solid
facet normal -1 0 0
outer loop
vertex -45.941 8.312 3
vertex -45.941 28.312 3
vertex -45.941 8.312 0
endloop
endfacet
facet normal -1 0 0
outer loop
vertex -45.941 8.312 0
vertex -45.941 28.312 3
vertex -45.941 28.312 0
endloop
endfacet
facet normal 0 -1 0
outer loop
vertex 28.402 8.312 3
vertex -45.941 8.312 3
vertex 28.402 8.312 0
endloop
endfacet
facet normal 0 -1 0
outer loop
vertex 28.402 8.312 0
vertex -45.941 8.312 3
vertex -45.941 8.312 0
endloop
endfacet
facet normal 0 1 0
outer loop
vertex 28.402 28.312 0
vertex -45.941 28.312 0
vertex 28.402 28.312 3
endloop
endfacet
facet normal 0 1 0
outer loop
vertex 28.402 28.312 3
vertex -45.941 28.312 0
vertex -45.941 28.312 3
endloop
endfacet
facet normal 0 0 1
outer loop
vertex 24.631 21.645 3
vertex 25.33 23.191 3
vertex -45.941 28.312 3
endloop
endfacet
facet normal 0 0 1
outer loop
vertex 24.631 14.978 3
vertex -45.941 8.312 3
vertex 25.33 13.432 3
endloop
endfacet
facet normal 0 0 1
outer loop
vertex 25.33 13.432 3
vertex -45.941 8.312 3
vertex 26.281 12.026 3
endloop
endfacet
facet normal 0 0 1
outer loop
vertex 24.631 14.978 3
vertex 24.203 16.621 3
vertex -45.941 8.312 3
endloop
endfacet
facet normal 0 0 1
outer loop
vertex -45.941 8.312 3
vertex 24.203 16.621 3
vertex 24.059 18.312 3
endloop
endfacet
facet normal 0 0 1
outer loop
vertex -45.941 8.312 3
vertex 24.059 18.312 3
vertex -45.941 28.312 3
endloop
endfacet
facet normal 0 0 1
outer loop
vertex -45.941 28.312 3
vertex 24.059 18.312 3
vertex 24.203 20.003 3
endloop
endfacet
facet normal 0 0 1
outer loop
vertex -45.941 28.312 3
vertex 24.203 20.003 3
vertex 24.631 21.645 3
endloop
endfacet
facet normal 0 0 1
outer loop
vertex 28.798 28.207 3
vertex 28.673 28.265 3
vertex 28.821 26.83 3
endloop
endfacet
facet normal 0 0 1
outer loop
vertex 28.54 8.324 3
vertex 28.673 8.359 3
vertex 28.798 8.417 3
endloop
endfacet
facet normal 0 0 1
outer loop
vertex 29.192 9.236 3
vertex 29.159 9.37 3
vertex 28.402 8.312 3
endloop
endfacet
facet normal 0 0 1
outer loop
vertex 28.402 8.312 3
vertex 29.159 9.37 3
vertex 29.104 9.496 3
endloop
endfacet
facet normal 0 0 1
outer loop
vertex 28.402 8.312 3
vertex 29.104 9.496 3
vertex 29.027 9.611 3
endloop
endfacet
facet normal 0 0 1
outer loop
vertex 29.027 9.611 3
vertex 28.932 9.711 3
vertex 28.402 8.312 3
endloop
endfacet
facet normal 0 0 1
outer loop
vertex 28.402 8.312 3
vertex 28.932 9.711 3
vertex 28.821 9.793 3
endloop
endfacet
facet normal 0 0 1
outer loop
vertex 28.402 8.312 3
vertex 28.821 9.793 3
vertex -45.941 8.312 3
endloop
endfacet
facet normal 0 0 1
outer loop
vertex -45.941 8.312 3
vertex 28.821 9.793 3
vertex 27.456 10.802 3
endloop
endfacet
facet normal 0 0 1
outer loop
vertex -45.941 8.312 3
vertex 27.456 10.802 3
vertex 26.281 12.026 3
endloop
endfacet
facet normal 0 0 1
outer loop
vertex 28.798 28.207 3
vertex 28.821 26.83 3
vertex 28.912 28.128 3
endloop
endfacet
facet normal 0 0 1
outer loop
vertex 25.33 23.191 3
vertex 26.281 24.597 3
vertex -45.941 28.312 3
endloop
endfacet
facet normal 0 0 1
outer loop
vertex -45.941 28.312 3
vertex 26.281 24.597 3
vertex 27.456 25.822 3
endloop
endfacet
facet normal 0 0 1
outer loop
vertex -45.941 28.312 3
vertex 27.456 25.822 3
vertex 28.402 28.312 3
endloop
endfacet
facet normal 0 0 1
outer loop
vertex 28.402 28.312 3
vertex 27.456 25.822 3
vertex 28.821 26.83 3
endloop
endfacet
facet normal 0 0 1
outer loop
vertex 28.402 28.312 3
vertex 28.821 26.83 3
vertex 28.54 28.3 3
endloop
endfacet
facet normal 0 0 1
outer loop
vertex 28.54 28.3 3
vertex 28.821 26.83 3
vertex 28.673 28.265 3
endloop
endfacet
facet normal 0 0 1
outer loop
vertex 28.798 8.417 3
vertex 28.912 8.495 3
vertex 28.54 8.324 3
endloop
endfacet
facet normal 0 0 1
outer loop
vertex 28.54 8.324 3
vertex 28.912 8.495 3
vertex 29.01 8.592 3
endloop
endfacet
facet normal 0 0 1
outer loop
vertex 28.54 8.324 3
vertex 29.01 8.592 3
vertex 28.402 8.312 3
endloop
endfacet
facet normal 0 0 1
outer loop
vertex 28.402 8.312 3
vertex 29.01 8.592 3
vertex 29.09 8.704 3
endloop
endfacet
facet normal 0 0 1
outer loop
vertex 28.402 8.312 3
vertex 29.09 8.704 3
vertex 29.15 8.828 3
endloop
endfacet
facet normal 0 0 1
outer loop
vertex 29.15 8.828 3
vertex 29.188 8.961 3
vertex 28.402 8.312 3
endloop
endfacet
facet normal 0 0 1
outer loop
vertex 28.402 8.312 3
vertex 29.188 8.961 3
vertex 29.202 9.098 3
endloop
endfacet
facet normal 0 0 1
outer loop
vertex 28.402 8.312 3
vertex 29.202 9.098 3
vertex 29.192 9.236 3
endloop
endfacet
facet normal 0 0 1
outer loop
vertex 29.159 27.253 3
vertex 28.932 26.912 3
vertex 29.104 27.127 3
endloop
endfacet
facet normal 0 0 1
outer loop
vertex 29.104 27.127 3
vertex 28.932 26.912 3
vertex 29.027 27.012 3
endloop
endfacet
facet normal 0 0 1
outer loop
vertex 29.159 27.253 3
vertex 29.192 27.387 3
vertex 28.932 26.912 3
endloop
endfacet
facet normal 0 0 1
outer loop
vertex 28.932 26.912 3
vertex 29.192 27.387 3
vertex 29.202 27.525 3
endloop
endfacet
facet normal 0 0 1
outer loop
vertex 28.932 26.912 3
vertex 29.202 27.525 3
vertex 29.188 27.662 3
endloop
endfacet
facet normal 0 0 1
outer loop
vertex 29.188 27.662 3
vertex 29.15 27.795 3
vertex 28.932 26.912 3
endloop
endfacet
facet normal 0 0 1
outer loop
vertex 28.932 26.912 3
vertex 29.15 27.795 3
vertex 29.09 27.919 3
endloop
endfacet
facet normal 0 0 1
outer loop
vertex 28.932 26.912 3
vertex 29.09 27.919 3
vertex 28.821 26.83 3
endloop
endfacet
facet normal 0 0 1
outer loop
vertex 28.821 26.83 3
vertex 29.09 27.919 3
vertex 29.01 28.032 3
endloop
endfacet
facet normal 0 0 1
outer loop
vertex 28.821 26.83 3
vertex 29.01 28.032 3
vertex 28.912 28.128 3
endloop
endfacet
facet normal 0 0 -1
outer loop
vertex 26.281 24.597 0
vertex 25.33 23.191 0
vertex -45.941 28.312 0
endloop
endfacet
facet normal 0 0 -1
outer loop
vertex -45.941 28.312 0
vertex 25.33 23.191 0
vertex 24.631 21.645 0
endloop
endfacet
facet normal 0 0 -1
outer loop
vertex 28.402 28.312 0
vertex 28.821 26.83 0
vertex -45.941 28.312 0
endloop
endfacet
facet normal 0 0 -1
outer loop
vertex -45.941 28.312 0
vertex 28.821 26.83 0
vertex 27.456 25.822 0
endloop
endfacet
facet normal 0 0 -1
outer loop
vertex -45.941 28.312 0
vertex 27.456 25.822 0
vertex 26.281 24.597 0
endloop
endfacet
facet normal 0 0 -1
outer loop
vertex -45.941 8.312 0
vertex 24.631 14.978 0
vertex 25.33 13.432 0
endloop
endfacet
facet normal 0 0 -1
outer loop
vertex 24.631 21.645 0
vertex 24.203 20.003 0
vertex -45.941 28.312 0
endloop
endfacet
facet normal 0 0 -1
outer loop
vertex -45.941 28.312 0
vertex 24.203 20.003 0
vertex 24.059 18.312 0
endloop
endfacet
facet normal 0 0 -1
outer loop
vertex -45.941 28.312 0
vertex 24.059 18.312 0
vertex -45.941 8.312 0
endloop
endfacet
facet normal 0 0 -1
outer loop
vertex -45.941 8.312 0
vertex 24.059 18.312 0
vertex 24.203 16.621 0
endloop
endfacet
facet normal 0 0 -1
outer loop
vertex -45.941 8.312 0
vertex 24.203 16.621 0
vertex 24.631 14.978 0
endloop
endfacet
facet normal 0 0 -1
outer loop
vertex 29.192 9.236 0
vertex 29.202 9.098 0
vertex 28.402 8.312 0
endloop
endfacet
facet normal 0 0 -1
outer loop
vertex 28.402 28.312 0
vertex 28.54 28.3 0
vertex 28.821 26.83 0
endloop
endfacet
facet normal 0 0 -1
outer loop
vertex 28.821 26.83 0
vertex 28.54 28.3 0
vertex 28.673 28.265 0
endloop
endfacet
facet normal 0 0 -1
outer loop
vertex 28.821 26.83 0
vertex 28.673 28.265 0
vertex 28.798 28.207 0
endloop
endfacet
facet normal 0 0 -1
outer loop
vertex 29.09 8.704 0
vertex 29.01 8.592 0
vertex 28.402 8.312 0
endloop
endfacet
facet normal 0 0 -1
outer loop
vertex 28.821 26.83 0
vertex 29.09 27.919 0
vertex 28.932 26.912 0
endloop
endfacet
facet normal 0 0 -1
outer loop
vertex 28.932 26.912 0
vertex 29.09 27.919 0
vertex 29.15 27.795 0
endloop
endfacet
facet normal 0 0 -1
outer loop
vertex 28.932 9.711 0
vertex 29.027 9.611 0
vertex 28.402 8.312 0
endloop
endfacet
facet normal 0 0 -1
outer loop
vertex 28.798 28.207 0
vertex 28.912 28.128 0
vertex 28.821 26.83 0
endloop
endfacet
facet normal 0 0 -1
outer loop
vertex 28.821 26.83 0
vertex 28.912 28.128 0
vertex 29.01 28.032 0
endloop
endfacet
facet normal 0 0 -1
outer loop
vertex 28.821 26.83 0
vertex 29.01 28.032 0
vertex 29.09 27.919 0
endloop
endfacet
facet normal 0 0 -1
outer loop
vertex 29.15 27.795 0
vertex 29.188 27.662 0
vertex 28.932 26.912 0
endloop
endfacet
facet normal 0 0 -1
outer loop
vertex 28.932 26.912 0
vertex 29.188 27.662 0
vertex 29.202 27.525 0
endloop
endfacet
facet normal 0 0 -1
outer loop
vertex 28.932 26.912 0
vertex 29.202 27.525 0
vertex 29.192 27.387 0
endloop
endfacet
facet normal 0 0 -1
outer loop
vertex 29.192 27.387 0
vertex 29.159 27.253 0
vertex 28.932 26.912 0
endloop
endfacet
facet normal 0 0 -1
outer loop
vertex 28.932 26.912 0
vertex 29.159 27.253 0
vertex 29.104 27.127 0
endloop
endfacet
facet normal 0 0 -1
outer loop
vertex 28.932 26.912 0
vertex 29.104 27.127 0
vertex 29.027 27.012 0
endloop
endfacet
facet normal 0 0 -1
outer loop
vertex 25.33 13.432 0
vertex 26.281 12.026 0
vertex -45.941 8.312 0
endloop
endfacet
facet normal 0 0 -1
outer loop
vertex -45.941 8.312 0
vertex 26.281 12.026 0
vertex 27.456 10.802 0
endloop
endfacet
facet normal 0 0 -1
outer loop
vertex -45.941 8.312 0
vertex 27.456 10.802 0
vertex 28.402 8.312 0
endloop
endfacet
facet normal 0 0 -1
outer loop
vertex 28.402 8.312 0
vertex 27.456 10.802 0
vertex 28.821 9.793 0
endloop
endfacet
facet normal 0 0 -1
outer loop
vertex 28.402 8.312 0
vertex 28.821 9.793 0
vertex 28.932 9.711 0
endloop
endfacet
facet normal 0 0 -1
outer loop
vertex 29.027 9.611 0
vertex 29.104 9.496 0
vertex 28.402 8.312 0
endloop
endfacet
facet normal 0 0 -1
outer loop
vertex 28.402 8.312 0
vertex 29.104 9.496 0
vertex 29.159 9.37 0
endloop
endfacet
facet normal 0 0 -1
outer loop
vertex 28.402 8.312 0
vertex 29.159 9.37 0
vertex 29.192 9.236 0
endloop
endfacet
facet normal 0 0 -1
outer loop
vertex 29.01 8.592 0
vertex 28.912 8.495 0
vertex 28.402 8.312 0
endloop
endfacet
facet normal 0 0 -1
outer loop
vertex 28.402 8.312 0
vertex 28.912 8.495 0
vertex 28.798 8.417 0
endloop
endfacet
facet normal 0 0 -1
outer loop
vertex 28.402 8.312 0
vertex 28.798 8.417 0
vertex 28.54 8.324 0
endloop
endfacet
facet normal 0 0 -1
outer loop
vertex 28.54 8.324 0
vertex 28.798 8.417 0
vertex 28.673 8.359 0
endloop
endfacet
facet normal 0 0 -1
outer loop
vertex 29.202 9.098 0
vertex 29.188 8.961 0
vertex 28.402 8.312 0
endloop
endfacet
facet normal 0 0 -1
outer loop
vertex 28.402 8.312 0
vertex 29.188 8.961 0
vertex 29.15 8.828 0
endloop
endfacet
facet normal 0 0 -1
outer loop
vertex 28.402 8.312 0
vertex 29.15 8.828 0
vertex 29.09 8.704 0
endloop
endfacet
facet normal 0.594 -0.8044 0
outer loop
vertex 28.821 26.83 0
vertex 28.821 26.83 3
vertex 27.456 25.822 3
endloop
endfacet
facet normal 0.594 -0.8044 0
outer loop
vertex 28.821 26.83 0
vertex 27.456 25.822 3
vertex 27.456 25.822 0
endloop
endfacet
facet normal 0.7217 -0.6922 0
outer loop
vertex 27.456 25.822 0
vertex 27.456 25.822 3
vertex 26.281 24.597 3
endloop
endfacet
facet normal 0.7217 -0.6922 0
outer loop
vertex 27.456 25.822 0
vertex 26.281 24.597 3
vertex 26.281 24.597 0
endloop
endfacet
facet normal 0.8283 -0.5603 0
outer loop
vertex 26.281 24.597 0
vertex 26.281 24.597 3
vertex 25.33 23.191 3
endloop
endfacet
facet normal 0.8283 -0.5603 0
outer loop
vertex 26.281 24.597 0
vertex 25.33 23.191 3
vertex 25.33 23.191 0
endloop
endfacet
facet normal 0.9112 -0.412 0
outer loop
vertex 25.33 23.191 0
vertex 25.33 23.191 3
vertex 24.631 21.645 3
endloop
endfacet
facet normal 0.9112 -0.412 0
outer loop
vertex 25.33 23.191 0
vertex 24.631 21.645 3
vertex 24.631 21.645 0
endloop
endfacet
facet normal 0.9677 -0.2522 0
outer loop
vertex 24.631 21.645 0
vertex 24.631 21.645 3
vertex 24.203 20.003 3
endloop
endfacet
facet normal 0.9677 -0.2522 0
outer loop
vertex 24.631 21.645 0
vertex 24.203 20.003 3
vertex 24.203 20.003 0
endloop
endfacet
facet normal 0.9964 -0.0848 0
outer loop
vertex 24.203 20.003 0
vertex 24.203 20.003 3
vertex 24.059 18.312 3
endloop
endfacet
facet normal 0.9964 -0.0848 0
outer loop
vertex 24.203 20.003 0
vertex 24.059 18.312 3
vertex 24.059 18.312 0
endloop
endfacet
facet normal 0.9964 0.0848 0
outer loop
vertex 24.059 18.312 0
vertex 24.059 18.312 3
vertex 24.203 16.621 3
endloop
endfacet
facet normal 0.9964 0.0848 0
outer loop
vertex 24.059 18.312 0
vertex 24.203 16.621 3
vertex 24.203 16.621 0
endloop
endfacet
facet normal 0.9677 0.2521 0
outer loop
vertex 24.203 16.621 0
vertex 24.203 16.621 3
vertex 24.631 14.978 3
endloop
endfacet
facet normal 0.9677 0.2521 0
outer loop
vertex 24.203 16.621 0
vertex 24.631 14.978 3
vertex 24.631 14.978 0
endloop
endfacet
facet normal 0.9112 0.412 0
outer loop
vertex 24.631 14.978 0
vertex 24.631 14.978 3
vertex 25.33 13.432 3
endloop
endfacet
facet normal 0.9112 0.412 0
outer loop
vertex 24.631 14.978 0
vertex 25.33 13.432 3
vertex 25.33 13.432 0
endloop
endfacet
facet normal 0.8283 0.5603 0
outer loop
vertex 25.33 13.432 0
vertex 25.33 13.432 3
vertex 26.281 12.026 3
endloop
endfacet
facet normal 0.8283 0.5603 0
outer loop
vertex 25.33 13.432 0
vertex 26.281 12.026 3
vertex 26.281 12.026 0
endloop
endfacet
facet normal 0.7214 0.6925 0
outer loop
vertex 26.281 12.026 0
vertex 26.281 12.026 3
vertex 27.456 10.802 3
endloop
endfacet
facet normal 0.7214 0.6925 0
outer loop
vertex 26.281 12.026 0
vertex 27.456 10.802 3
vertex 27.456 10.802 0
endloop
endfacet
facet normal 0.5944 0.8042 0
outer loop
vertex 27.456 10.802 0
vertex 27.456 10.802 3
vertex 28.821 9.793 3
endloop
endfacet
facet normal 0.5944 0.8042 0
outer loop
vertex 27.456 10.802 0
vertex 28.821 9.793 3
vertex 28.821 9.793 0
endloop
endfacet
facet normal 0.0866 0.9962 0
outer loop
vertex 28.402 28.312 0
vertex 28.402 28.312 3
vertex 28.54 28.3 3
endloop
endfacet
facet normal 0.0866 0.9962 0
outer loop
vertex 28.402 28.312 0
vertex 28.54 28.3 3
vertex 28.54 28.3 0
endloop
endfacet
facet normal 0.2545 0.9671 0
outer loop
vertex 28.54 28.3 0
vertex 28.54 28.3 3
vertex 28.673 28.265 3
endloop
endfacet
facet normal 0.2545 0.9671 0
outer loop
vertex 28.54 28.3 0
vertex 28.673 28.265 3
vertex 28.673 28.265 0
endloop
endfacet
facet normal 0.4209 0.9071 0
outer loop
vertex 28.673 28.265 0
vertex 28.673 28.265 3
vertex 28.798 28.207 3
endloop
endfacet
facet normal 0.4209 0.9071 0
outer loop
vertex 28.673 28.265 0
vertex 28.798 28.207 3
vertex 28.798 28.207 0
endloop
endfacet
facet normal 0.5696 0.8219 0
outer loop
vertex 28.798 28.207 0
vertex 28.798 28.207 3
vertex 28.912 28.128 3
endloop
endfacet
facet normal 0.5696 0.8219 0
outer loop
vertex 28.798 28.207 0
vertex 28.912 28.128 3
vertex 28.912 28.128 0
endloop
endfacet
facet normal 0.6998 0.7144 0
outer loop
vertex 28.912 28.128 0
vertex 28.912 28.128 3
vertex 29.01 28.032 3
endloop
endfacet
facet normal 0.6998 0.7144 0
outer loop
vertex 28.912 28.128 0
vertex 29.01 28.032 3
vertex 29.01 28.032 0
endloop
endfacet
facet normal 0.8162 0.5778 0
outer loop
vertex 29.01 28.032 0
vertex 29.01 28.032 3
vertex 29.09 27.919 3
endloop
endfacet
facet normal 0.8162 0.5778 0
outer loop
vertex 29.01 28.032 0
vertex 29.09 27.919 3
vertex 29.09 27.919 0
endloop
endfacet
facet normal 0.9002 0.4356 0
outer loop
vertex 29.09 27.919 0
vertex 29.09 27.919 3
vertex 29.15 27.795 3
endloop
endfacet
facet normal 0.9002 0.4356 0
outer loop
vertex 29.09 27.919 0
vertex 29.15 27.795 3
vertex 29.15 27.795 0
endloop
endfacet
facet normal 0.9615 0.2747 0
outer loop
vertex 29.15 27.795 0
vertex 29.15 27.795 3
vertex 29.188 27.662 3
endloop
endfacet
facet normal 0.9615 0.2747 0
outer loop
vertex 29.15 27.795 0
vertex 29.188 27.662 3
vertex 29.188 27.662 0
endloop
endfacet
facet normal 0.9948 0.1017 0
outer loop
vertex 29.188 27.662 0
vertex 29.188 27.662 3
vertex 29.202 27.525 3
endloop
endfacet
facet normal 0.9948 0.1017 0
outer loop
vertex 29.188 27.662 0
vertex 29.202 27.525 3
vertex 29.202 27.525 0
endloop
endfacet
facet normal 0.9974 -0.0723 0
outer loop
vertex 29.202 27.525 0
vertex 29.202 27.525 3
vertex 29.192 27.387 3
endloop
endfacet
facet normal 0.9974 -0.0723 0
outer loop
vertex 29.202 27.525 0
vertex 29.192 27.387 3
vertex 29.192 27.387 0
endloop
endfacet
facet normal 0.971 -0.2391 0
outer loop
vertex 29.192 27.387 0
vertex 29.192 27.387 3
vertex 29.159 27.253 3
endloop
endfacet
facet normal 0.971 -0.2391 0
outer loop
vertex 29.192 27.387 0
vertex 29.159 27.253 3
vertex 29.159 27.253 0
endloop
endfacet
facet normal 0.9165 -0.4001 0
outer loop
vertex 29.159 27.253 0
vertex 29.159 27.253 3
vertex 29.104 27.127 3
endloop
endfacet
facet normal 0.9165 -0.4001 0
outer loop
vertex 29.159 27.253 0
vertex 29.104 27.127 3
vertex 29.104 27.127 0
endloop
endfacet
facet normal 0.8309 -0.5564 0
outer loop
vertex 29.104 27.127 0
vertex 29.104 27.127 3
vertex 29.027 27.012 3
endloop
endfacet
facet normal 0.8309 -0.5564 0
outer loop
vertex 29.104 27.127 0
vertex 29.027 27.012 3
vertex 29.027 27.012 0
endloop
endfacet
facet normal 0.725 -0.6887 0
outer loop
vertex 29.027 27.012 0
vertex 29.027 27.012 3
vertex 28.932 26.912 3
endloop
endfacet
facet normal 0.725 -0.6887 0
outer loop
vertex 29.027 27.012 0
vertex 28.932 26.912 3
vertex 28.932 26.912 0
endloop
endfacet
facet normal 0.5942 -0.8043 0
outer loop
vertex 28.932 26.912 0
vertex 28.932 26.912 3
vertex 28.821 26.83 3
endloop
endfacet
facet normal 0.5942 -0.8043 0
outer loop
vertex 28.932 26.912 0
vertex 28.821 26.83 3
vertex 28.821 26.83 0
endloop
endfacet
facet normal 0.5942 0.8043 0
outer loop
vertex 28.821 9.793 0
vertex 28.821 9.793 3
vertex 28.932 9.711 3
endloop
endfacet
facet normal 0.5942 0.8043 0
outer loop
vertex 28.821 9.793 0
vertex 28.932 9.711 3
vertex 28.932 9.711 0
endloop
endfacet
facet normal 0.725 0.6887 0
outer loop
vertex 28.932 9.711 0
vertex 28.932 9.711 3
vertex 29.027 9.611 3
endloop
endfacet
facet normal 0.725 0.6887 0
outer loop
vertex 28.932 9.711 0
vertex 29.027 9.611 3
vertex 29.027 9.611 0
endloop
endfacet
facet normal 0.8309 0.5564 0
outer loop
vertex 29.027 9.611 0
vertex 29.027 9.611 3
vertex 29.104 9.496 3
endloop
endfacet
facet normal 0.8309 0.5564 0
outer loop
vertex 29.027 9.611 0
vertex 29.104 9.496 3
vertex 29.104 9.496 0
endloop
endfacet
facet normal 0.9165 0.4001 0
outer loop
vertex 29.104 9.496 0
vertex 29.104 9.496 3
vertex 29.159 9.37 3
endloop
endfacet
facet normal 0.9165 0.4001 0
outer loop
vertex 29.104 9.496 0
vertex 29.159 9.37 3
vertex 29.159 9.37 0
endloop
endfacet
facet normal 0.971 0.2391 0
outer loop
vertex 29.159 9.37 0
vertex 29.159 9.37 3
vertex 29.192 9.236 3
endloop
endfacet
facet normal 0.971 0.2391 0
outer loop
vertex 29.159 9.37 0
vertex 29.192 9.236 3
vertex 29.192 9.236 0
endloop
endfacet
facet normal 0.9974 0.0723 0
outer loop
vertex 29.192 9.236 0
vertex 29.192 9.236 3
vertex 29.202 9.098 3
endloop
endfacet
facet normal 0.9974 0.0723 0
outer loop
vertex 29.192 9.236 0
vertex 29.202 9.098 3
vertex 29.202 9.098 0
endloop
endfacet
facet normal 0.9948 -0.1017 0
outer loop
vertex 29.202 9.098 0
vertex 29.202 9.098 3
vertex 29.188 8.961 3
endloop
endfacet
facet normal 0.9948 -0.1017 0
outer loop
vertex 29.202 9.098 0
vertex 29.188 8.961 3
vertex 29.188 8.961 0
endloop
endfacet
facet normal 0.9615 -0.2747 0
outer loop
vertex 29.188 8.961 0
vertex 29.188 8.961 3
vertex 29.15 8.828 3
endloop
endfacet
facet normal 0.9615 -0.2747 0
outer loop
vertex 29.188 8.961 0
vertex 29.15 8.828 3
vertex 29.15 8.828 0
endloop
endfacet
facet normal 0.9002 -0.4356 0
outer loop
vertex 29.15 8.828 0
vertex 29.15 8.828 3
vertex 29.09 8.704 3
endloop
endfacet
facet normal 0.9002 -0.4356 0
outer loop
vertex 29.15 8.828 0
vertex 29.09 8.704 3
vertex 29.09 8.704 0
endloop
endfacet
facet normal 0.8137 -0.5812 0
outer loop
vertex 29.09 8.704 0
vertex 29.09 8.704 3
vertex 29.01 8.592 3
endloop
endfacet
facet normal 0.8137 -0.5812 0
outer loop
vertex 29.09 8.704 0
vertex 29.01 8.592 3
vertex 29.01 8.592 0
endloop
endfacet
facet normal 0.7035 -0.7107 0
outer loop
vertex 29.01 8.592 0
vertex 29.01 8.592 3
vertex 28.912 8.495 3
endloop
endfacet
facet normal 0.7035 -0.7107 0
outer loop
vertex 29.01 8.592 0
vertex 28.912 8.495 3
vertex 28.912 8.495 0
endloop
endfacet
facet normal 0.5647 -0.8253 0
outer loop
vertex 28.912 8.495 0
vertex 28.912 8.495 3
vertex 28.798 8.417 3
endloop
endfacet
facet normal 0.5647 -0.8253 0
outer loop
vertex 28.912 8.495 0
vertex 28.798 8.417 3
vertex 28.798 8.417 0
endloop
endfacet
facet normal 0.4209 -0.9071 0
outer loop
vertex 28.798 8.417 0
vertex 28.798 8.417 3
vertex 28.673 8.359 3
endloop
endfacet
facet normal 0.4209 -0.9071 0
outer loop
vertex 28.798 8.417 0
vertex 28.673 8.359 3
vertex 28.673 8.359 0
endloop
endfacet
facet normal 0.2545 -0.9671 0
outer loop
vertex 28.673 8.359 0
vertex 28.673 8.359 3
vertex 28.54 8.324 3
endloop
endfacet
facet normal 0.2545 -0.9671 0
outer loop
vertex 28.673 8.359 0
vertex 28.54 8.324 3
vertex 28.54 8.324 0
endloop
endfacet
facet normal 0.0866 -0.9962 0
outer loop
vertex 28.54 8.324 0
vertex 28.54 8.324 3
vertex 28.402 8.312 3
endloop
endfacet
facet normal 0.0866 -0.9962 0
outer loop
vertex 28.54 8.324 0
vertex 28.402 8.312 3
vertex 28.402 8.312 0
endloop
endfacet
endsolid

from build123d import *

# Parameters (mm, degrees)
ESBO_O1_W                = 80
ESBO_O1_H                = 20
RESSALTO_EXTRUS_O1_DEPTH = 3
ESBO_O2_R                = 10
CORTE_EXTRUS_O1_DEPTH    = 10
FILETE1_R                = 0.8
FILETE2_R                = 0.8


with BuildPart() as part:
    # Esboço1 → Ressalto-extrusão1 (new body)
    with BuildSketch(Plane.XY):
        with Locations((-5.941010257, 18.311759729)):
            Rectangle(ESBO_O1_W, ESBO_O1_H)
    extrude(amount=RESSALTO_EXTRUS_O1_DEPTH)

    # Esboço2 → Corte-extrusão1 (cut)
    with BuildSketch(Plane.XY.offset(3)):
        with Locations((34.058989743, 18.311759729)):
            Circle(ESBO_O2_R)
    extrude(amount=-CORTE_EXTRUS_O1_DEPTH, mode=Mode.SUBTRACT)

    # Filete1
    filete1_edges = [part.edges().sort_by_distance(p)[0] for p in [
        (34.058989743, 28.311759729, 1.5),
    ]]
    fillet(filete1_edges, radius=FILETE1_R)

    # Filete2
    # the kernel refuses this fillet: 0.8 mm, written as the material it takes off along each edge
    with BuildSketch(Plane(origin=(34.058989743, 8.311759729, -14.142135624), x_dir=(-0.9622504486493761, 0.2721655269759089, 0), z_dir=(0, 0, 1))) as filete2_piece_1:
        with BuildLine():
            CenterArc((5.661042961, 0.769800359), FILETE2_R, 105.793169048, 148.413661903)
            Line((5.44331054, 1.539600718), (0, 0))
            ThreePointArc((0, 0), (2.72165527, 0.377495514), (5.44331054, 0))
        make_face()
    extrude(amount=31.284271247, mode=Mode.SUBTRACT)


solid = part.part
